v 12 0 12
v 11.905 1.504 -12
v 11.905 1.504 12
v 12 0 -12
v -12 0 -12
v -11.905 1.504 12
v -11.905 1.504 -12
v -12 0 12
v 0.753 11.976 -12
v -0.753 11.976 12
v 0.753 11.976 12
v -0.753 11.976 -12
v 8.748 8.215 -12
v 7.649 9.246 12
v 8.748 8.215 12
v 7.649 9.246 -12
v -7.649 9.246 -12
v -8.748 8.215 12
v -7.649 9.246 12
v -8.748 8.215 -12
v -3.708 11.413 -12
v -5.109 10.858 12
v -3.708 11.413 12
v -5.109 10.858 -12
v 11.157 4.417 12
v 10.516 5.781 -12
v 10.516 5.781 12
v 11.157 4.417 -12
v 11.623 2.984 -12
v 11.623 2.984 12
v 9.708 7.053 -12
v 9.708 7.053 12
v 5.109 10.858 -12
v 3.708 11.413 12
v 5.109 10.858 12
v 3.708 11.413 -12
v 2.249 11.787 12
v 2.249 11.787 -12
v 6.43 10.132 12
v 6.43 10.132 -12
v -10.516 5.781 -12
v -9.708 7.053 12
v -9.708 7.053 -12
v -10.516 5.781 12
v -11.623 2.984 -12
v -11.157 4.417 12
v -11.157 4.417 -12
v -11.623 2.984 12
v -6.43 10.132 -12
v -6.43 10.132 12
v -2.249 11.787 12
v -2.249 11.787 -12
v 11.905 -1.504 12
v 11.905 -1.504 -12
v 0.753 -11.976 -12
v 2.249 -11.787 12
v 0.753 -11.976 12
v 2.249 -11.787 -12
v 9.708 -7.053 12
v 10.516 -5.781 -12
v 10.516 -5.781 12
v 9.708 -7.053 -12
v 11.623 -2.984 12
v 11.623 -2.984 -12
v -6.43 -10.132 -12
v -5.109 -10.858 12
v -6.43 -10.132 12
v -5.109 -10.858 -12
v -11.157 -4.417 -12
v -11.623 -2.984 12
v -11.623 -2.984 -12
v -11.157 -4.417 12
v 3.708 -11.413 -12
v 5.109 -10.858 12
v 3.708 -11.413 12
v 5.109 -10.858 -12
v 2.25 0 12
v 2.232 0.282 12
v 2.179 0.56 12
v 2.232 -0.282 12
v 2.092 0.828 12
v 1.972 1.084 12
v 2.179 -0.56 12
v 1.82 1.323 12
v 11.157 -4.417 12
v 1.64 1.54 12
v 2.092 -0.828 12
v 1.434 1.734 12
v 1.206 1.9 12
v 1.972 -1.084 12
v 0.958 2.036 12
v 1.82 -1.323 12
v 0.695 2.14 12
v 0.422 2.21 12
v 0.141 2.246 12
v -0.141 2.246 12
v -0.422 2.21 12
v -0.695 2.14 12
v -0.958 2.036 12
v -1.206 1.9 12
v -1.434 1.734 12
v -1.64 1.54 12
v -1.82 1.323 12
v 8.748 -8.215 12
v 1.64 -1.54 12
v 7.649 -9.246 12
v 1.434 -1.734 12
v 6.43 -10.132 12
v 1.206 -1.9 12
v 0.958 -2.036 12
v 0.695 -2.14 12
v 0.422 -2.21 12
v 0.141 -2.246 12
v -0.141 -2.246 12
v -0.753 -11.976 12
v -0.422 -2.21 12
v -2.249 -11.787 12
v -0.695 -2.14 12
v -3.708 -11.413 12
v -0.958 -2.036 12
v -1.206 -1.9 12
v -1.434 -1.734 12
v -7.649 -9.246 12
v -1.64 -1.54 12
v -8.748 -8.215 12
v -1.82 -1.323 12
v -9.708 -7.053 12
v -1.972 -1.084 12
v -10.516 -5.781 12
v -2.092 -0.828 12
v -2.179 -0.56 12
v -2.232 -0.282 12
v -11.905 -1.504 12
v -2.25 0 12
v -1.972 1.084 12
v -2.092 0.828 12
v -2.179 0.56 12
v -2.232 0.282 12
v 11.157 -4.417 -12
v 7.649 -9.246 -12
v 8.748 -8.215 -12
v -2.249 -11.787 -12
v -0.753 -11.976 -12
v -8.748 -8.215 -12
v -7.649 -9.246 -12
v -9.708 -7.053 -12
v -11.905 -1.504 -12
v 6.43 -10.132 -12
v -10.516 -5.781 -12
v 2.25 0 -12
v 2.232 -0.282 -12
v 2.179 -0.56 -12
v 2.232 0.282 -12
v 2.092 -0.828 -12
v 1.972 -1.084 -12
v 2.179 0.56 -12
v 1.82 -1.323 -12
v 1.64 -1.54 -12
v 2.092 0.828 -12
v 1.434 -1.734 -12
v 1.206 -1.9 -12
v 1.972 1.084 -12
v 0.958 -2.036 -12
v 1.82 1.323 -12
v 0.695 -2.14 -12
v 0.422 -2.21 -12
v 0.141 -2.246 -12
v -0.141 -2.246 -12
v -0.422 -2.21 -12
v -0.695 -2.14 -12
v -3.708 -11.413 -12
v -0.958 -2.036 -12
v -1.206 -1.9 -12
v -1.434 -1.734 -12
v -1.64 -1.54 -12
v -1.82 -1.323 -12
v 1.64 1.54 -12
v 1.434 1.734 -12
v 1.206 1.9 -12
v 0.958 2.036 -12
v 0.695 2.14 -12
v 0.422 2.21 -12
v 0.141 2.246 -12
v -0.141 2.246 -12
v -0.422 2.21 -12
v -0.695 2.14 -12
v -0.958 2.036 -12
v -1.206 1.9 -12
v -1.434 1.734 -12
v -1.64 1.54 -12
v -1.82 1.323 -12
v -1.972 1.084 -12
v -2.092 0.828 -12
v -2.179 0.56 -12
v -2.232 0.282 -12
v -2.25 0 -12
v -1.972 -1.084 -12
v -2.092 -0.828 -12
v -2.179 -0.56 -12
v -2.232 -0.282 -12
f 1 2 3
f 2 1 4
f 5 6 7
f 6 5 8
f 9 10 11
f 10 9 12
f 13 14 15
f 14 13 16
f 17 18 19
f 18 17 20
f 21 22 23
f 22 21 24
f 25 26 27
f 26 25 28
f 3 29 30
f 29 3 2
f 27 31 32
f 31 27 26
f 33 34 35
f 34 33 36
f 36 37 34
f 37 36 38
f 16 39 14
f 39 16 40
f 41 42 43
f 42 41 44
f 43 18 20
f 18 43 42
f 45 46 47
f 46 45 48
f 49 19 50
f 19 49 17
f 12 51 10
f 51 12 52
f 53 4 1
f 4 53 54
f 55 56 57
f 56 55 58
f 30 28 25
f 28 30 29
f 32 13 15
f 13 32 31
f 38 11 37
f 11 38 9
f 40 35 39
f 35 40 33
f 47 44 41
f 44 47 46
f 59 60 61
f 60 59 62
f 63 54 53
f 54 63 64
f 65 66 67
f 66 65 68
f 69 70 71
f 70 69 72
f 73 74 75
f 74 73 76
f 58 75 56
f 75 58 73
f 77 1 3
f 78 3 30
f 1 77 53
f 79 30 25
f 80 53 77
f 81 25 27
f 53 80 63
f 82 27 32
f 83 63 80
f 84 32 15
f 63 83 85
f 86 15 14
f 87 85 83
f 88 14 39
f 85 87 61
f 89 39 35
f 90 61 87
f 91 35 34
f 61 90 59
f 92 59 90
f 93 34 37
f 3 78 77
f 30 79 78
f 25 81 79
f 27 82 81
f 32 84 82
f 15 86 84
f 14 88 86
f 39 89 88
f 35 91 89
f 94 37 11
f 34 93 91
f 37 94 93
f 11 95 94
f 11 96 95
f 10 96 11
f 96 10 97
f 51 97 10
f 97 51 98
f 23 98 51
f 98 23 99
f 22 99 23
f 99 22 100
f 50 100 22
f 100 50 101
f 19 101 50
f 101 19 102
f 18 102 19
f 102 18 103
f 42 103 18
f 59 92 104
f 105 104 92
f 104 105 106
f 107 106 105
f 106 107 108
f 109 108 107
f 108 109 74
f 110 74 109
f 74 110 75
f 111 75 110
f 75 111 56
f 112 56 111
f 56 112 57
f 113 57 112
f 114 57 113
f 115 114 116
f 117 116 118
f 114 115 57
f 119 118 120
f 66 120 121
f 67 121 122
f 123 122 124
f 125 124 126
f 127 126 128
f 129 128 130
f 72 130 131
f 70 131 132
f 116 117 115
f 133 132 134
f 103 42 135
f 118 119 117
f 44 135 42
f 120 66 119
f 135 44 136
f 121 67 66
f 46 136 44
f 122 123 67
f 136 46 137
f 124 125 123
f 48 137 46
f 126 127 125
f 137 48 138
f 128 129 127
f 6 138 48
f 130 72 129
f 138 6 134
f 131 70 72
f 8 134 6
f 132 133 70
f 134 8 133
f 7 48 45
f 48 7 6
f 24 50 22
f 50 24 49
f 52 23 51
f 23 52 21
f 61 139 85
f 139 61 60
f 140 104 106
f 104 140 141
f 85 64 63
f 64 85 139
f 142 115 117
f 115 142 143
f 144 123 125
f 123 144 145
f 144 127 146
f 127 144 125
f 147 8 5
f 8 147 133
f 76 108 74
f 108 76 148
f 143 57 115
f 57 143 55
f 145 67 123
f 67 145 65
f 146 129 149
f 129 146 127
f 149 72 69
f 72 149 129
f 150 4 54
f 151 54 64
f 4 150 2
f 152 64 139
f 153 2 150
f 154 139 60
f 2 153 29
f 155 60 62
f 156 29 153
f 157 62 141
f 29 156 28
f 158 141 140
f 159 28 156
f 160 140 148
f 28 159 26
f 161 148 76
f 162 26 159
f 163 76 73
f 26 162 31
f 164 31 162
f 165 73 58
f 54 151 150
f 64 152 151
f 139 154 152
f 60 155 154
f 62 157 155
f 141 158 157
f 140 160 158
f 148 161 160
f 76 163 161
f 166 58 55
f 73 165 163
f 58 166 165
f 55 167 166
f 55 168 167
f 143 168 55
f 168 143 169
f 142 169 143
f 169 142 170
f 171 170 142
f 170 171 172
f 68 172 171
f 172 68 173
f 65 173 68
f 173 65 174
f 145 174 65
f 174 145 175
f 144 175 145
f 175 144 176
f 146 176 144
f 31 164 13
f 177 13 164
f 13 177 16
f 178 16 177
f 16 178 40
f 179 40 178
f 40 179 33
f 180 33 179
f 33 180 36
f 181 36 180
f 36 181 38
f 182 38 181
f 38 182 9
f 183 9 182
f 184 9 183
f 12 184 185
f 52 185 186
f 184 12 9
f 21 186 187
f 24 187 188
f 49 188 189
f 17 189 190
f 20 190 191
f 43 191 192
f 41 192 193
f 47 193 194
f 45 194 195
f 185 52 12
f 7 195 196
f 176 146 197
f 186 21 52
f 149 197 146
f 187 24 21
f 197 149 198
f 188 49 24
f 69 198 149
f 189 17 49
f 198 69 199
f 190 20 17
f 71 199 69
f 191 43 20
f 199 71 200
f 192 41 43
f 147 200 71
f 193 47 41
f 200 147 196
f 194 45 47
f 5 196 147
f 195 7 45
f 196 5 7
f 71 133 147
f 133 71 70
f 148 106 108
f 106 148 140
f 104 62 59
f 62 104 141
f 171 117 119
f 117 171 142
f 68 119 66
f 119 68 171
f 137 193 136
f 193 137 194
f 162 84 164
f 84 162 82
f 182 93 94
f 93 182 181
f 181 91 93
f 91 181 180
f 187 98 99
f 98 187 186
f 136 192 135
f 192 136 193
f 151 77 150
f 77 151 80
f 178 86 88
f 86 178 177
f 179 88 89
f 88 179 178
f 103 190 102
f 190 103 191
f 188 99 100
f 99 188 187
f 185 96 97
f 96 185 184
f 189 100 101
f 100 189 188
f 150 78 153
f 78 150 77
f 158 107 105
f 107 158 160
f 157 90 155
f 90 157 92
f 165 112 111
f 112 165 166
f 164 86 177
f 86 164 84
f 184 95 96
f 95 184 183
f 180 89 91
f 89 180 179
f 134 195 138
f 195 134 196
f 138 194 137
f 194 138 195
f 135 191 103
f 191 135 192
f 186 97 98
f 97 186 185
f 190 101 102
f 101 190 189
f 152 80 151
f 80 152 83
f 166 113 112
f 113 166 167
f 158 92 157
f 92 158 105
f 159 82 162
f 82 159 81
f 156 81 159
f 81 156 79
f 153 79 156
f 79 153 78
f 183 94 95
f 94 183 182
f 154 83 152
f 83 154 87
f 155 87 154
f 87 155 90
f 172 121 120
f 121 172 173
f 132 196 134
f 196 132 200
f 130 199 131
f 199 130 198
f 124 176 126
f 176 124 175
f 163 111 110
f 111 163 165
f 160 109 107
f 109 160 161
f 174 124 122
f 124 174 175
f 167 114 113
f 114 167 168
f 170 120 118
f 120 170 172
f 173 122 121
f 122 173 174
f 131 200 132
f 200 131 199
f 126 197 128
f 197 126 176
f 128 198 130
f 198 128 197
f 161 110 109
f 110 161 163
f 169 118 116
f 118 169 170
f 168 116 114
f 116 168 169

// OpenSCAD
$fn = 50;


difference() {
	union() {
		translate(v = [0, 0, -12.0000000000]) {
			cylinder(h = 24, r = 12.0000000000);
		}
	}
	union() {
		translate(v = [0, 0, -100.0000000000]) {
			cylinder(h = 200, r = 2.2500000000);
		}
	}
}
